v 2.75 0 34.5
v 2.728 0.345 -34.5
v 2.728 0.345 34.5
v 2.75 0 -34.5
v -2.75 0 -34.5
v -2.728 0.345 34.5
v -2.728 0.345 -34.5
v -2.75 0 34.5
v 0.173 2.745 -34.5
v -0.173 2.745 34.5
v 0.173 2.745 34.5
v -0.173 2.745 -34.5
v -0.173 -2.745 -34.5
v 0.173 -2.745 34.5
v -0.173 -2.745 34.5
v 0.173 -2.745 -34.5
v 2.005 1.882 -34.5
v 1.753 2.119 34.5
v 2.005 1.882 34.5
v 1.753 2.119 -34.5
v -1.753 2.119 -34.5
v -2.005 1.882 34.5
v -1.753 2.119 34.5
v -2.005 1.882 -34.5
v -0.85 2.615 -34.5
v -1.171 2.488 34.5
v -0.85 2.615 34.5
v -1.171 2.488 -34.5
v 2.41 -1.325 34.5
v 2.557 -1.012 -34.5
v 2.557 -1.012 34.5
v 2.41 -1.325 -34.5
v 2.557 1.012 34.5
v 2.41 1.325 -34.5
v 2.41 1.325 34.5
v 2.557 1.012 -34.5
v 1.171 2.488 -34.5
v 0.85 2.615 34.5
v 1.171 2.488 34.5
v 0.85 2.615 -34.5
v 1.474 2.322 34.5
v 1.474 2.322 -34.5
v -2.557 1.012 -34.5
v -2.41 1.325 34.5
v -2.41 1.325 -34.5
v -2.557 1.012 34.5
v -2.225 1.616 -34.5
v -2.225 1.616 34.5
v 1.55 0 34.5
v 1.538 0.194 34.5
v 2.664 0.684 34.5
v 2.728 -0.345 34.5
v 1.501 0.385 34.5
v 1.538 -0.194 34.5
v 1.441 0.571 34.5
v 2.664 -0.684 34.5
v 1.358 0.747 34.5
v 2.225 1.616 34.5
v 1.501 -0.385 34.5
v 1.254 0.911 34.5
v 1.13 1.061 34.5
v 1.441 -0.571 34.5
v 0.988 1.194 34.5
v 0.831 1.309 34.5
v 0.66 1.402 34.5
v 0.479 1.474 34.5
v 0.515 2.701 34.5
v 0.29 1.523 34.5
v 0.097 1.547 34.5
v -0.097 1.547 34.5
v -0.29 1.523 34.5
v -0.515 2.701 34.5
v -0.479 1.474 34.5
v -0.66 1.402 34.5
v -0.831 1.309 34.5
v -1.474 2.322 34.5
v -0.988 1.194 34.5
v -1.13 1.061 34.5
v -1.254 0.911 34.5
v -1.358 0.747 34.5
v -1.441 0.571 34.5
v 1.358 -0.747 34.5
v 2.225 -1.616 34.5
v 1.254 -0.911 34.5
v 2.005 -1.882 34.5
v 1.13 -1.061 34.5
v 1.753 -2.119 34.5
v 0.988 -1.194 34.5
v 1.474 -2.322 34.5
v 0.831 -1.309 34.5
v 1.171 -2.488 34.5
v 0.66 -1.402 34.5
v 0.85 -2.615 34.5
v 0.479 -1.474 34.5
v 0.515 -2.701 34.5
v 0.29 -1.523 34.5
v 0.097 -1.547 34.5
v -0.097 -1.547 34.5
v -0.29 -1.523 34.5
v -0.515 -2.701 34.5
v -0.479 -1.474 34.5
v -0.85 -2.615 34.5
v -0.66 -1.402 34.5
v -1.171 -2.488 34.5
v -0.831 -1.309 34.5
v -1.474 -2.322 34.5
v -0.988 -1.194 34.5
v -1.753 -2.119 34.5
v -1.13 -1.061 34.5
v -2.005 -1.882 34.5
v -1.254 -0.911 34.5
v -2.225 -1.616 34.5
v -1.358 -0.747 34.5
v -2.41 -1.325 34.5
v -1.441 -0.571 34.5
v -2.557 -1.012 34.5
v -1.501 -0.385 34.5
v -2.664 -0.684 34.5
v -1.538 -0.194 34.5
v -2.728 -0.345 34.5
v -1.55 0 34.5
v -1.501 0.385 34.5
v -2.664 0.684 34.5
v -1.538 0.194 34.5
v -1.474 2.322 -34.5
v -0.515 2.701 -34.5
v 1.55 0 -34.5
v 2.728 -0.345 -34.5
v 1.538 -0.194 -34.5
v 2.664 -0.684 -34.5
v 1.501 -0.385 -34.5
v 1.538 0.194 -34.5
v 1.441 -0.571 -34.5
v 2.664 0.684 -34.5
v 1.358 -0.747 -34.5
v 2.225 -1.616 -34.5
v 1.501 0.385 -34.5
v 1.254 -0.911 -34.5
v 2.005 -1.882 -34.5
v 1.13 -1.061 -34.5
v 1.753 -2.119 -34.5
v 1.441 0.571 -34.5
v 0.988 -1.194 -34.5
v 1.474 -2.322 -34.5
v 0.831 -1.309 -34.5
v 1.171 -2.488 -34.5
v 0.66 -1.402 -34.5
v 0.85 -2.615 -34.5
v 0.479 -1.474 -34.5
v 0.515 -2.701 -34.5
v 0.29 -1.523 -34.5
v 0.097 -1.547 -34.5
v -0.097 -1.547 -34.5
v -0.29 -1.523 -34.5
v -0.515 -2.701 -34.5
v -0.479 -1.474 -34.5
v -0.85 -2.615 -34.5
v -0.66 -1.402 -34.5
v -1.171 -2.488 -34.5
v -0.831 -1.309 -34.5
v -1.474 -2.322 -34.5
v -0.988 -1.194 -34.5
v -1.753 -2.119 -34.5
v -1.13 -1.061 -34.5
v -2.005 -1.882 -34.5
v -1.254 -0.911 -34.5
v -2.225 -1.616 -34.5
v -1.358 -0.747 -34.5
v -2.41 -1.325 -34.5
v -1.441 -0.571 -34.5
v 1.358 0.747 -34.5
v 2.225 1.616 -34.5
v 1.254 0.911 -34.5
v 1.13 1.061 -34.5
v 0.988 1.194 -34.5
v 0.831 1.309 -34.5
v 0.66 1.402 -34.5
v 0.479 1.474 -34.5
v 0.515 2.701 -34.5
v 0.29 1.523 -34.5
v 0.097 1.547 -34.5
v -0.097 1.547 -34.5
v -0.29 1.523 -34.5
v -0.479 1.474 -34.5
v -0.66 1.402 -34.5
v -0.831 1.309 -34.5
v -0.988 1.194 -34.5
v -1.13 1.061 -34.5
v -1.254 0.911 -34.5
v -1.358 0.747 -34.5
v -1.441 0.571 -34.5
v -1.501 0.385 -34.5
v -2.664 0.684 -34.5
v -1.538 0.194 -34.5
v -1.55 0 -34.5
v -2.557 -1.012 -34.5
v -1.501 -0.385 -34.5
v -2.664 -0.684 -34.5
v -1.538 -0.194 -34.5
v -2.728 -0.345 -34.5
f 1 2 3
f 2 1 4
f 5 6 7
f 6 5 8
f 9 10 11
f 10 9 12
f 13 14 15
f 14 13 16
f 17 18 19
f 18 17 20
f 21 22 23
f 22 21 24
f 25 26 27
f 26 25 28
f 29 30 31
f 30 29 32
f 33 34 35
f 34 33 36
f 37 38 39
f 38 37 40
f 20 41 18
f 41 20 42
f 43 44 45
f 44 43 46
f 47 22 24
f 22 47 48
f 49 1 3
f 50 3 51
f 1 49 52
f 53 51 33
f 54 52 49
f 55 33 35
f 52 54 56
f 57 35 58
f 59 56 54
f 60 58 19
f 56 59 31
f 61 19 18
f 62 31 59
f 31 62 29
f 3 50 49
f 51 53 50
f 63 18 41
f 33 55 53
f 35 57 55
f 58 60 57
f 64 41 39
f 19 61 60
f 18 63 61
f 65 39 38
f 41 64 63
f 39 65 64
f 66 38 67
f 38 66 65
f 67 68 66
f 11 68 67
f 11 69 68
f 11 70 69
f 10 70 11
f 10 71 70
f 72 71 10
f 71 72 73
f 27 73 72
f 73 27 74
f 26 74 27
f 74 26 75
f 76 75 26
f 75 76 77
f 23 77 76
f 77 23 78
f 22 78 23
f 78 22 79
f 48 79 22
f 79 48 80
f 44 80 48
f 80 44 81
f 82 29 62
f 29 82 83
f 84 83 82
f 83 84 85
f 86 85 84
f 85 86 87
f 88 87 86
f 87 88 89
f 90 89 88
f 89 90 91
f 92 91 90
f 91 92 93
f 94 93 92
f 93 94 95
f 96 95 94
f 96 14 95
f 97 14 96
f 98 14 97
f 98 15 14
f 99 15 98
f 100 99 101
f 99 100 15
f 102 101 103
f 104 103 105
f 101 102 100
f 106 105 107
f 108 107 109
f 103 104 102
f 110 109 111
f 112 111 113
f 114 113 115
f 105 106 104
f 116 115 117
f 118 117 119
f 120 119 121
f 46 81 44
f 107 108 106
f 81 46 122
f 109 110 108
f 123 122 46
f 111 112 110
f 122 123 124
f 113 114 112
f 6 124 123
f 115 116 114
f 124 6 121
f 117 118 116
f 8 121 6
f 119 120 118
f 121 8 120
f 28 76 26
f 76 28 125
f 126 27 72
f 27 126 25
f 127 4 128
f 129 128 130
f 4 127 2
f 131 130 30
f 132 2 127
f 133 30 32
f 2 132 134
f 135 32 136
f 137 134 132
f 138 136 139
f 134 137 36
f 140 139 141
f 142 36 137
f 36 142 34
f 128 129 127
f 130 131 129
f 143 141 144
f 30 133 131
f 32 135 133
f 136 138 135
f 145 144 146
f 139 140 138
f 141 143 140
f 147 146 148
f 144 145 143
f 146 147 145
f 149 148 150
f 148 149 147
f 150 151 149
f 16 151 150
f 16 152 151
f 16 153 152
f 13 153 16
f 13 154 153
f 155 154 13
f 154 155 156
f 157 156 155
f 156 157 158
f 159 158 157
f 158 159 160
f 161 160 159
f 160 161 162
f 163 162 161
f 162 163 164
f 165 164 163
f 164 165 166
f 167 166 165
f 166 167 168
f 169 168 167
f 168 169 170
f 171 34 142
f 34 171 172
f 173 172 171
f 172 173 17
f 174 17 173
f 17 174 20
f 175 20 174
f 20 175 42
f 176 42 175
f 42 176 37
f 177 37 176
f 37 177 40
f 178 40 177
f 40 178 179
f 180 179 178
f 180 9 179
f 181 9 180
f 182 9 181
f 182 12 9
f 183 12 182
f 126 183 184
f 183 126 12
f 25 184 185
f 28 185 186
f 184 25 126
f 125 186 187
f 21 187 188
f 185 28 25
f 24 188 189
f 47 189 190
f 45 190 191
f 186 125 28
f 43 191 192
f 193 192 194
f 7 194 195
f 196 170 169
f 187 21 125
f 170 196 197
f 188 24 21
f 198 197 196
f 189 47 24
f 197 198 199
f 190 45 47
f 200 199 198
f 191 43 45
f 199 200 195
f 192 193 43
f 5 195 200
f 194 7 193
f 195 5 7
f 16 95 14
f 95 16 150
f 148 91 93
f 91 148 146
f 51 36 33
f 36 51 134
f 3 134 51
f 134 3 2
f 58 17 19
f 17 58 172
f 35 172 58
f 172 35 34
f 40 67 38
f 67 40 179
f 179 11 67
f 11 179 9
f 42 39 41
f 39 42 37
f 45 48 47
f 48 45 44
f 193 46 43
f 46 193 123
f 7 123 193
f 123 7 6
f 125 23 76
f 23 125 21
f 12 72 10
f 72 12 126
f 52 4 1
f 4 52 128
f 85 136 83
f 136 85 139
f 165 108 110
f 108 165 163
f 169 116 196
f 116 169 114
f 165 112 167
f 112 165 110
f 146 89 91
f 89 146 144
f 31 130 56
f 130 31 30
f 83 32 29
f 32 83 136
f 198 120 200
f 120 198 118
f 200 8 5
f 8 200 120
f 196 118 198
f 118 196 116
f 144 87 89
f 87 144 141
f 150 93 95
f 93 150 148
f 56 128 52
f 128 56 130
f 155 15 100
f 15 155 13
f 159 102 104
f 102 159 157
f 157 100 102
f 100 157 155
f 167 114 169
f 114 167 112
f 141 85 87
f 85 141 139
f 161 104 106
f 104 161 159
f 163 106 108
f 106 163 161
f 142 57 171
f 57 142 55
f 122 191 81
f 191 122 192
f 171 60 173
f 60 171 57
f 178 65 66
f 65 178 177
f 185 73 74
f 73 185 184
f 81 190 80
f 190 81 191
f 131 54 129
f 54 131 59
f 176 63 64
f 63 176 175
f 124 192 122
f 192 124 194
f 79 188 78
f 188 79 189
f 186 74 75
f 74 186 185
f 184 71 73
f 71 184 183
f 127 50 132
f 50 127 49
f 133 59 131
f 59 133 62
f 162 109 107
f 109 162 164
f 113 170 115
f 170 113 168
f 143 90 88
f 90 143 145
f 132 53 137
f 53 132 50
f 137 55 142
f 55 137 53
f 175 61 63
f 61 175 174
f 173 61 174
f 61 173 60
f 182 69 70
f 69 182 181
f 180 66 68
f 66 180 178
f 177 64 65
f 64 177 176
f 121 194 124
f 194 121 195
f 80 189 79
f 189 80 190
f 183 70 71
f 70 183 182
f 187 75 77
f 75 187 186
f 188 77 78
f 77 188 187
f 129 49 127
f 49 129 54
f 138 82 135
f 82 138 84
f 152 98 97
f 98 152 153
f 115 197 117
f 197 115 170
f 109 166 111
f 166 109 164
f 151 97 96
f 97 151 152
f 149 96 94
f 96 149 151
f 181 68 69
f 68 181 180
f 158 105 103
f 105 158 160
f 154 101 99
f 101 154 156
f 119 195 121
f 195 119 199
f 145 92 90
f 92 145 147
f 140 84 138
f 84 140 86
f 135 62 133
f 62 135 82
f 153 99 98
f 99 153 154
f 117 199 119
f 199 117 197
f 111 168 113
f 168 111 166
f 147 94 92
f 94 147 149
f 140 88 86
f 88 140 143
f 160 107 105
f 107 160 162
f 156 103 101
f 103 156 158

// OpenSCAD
$fn = 50;


difference() {
	union() {
		translate(v = [0, 0, -34.5000000000]) {
			cylinder(h = 69, r = 2.7500000000);
		}
	}
	union() {
		translate(v = [0, 0, -100.0000000000]) {
			cylinder(h = 200, r = 1.5500000000);
		}
	}
}
